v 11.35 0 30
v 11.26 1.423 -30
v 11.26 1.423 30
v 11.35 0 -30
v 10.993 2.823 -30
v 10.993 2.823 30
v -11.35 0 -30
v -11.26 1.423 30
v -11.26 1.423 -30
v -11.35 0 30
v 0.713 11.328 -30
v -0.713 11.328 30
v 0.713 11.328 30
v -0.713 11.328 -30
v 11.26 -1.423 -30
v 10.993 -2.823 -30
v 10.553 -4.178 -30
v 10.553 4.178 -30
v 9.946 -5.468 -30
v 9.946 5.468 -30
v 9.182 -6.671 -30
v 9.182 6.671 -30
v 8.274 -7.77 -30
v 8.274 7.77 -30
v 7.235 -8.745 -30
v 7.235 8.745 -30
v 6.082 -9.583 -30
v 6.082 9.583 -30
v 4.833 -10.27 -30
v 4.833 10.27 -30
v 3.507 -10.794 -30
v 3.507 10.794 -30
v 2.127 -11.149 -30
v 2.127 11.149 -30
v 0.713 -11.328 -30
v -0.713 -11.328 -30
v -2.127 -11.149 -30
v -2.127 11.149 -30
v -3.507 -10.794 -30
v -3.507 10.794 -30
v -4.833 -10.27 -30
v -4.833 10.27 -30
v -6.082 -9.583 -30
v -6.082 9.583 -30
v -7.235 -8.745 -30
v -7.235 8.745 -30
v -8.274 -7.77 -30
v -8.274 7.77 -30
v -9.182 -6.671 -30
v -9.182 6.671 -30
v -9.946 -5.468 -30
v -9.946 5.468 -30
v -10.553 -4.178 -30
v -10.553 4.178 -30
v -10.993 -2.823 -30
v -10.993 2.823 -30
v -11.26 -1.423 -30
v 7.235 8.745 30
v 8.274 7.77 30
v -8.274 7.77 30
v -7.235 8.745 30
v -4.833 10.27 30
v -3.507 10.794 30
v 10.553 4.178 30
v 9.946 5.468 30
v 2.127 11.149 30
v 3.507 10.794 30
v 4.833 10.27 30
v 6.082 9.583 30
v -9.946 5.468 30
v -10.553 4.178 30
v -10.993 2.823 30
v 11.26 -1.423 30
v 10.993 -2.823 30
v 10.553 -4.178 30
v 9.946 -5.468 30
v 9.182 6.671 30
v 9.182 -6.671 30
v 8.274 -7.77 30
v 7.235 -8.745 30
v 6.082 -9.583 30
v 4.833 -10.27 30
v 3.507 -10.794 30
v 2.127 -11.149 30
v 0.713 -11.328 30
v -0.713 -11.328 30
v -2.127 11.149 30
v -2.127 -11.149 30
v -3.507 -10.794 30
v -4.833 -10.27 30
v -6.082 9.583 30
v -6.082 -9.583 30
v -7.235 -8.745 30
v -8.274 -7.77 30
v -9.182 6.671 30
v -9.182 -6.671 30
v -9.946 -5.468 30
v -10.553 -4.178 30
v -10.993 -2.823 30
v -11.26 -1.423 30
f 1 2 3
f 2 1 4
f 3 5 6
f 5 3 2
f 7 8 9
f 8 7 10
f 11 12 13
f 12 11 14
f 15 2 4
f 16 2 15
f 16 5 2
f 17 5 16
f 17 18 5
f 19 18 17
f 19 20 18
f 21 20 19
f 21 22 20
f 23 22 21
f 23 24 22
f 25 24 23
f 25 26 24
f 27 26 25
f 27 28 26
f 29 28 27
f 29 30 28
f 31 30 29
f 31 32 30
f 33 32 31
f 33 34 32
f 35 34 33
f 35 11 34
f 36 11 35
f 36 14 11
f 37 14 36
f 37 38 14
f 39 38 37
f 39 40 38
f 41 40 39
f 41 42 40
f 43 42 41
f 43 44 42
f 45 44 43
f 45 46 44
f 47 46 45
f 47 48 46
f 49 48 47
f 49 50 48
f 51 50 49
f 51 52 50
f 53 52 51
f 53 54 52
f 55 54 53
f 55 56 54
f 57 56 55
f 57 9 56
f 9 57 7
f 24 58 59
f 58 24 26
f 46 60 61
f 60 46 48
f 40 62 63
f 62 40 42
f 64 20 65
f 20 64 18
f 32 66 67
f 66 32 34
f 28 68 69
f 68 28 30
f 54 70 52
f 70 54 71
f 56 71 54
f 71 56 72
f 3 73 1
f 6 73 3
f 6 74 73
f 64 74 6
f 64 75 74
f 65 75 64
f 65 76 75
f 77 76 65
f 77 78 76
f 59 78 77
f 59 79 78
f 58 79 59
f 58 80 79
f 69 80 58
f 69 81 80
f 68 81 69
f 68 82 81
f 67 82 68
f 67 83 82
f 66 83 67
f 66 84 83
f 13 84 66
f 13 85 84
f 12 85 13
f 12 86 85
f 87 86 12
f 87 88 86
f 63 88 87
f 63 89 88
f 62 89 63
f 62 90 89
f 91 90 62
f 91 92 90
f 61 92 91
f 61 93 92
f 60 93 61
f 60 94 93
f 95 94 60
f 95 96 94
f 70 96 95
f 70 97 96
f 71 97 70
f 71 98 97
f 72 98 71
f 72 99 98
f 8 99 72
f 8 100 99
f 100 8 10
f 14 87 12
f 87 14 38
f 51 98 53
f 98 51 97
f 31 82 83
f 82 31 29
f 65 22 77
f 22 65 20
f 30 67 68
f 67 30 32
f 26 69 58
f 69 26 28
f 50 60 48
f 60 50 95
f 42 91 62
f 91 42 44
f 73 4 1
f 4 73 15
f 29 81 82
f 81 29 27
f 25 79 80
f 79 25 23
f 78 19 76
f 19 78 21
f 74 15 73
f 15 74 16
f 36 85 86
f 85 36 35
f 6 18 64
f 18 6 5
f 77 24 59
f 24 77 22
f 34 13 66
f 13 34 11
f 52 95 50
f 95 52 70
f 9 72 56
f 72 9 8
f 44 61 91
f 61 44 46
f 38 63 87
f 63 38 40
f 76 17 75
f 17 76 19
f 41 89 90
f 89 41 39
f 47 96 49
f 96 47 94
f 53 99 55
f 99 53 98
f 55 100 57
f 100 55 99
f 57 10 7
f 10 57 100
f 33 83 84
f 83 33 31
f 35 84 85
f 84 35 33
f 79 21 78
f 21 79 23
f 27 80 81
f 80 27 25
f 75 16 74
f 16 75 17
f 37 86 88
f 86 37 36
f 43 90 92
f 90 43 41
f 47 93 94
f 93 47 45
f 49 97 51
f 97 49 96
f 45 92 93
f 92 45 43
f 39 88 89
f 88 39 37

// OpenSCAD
$fn = 50;


difference() {
	union() {
		translate(v = [0, 0, -30.0000000000]) {
			cylinder(h = 60, r = 11.3500000000);
		}
	}
	union() {
		translate(v = [0, 0, -100.0000000000]) {
			cylinder(h = 200, r = 0);
		}
	}
}
